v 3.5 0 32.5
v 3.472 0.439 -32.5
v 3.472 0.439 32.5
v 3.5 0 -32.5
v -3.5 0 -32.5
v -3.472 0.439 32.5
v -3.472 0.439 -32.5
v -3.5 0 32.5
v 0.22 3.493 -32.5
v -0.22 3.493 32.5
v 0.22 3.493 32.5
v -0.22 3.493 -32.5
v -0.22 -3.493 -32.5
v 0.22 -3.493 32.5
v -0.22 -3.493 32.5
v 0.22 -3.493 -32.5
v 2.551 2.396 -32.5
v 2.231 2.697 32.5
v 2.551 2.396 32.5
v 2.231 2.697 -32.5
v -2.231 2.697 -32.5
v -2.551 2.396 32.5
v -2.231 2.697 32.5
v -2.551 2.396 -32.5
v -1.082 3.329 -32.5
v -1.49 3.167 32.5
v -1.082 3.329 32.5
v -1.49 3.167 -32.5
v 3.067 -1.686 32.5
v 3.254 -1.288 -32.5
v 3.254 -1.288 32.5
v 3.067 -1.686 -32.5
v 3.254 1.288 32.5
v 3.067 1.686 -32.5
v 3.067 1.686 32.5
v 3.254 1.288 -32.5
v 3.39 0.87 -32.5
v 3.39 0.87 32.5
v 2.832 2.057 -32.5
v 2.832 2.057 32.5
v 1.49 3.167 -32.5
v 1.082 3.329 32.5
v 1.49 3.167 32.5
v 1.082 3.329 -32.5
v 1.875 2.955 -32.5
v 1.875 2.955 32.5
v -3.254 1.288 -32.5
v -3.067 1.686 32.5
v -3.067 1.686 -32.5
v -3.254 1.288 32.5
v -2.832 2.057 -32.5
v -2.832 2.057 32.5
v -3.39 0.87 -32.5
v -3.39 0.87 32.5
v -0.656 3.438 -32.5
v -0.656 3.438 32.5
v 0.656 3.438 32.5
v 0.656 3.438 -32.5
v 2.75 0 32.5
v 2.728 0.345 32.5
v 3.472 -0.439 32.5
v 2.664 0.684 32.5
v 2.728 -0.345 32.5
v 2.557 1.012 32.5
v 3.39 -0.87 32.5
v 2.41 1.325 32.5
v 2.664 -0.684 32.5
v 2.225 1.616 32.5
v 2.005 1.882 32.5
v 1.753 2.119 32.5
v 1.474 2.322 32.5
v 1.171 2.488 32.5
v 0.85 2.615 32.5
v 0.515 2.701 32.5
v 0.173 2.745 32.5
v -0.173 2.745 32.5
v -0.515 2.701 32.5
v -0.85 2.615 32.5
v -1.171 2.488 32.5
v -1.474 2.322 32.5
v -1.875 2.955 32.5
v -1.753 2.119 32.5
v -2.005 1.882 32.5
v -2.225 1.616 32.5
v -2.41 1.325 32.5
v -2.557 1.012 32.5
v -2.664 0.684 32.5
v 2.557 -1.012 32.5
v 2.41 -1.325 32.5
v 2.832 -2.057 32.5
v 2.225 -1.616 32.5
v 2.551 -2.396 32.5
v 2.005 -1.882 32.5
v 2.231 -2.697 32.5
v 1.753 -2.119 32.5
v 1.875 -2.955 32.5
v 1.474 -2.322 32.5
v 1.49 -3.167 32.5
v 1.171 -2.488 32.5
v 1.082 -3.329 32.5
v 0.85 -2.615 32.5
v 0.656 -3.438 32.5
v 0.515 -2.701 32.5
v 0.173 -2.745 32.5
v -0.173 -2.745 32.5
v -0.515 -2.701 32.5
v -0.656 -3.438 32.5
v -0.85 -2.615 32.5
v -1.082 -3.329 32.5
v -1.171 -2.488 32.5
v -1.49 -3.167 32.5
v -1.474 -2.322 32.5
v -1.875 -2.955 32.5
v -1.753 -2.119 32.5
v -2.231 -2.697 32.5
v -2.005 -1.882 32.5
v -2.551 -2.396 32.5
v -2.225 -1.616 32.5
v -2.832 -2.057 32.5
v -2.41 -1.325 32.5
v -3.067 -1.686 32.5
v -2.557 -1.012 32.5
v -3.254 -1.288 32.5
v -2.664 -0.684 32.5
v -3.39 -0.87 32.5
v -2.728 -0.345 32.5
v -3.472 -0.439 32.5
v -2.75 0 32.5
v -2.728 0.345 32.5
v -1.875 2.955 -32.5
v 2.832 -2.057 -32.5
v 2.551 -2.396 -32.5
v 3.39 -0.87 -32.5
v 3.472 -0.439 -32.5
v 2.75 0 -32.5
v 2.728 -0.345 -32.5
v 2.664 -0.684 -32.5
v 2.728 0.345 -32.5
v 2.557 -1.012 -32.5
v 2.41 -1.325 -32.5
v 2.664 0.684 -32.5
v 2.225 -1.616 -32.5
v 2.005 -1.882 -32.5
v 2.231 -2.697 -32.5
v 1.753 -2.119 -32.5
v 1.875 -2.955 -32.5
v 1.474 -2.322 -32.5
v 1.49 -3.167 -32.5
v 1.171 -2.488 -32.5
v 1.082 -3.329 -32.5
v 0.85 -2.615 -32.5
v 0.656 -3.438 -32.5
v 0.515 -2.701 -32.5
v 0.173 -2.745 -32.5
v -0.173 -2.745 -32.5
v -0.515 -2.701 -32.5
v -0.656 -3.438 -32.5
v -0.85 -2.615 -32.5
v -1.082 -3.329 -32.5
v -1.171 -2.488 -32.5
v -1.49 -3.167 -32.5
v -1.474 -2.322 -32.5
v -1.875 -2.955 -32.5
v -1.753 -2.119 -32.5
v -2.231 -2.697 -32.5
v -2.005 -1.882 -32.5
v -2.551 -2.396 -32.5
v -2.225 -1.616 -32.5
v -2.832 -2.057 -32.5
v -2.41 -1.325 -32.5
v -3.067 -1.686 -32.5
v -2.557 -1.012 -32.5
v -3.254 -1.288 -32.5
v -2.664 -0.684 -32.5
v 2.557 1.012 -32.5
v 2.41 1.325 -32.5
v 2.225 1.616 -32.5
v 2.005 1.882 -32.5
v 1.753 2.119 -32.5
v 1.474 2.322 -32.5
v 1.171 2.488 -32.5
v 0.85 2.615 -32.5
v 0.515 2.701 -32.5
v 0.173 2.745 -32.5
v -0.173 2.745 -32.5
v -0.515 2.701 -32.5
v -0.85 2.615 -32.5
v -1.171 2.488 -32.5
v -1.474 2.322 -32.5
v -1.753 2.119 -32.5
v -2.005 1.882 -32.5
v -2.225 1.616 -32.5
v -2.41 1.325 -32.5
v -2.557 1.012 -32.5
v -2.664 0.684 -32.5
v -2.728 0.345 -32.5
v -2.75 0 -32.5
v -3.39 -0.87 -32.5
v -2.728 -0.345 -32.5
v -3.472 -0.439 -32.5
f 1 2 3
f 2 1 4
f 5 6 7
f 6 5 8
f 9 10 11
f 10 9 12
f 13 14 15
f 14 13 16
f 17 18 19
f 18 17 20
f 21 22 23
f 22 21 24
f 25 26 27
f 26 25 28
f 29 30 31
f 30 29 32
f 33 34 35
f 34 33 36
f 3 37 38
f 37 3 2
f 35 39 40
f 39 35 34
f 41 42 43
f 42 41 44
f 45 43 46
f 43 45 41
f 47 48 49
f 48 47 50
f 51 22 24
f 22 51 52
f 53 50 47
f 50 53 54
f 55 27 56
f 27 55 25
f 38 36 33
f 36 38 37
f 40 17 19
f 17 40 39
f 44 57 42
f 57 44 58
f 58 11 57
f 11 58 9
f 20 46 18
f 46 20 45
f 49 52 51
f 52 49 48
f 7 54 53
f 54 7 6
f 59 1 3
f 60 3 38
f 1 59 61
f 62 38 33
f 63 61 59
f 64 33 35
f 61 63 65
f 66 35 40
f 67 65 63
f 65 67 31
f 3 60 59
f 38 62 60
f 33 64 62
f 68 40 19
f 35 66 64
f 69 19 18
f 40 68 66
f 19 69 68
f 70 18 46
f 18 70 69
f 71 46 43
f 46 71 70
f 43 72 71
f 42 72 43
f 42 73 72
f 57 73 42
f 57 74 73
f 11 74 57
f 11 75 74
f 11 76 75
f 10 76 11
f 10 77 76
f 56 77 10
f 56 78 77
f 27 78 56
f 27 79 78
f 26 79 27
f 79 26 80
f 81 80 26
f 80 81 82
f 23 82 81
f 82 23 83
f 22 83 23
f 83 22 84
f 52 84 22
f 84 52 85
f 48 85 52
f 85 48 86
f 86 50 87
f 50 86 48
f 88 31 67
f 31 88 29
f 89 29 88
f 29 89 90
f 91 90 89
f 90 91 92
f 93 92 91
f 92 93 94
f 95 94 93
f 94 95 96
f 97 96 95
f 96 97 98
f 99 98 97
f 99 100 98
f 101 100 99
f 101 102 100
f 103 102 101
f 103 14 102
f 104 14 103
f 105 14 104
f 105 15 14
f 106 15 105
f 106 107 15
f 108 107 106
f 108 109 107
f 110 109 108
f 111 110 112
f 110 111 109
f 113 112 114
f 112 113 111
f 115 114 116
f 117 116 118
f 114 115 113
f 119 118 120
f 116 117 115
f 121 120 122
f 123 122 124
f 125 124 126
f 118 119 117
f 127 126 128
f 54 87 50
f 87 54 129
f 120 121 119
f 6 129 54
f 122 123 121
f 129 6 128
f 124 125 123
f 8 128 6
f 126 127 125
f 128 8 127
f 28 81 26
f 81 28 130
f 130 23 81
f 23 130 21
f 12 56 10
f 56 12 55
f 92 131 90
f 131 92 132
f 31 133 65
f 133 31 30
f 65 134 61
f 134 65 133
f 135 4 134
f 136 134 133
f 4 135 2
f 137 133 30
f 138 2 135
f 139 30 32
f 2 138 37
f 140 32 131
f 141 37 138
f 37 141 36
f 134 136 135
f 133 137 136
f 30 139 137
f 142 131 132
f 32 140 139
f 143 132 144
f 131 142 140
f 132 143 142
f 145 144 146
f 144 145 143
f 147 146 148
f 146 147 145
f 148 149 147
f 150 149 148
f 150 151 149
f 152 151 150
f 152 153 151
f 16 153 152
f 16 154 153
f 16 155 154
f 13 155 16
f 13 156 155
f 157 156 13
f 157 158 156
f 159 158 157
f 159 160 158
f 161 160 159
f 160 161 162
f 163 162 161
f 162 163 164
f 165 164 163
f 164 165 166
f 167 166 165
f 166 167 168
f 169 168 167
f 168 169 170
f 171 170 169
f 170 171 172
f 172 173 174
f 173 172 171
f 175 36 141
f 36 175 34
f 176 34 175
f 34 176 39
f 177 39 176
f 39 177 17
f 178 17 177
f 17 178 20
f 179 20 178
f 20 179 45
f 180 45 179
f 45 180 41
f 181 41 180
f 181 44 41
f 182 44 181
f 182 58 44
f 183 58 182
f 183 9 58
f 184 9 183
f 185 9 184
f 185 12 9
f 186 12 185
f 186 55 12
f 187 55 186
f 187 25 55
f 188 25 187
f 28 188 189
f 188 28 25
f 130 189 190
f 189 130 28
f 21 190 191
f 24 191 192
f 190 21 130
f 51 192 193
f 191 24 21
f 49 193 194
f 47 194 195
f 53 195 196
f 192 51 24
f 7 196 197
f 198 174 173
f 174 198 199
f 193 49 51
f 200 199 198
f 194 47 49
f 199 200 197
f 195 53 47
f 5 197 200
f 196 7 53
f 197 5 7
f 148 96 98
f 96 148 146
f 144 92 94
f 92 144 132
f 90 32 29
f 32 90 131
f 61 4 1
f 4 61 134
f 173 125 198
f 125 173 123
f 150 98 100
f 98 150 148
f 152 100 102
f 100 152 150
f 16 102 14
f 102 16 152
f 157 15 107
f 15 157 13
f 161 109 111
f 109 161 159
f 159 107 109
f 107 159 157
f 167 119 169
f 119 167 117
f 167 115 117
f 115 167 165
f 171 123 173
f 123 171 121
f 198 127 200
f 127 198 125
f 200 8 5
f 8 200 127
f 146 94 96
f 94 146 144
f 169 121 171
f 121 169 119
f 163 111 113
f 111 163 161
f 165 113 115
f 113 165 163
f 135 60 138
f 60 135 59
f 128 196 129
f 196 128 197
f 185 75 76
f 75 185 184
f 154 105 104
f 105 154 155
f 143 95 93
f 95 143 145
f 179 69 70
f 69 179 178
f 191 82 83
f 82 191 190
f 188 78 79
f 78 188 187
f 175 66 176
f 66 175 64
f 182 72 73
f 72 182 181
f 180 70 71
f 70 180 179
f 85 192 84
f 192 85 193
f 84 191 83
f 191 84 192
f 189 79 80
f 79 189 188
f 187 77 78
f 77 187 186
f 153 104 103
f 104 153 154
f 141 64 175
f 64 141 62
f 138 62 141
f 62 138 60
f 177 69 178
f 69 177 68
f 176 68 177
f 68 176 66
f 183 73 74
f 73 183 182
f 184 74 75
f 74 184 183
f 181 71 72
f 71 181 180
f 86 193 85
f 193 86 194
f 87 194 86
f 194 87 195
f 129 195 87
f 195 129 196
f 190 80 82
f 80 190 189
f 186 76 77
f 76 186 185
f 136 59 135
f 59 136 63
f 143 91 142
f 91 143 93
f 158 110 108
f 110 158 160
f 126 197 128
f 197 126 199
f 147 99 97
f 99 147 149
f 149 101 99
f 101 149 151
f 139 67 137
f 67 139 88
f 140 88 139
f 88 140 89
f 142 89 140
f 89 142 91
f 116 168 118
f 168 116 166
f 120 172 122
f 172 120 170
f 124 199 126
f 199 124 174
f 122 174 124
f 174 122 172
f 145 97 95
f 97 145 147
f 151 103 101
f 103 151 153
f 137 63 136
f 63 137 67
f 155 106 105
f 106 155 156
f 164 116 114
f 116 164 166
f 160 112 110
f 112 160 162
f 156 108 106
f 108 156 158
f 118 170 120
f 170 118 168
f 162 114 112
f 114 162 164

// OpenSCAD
$fn = 50;


difference() {
	union() {
		translate(v = [0, 0, -32.5000000000]) {
			cylinder(h = 65, r = 3.5000000000);
		}
	}
	union() {
		translate(v = [0, 0, -100.0000000000]) {
			cylinder(h = 200, r = 2.7500000000);
		}
	}
}
